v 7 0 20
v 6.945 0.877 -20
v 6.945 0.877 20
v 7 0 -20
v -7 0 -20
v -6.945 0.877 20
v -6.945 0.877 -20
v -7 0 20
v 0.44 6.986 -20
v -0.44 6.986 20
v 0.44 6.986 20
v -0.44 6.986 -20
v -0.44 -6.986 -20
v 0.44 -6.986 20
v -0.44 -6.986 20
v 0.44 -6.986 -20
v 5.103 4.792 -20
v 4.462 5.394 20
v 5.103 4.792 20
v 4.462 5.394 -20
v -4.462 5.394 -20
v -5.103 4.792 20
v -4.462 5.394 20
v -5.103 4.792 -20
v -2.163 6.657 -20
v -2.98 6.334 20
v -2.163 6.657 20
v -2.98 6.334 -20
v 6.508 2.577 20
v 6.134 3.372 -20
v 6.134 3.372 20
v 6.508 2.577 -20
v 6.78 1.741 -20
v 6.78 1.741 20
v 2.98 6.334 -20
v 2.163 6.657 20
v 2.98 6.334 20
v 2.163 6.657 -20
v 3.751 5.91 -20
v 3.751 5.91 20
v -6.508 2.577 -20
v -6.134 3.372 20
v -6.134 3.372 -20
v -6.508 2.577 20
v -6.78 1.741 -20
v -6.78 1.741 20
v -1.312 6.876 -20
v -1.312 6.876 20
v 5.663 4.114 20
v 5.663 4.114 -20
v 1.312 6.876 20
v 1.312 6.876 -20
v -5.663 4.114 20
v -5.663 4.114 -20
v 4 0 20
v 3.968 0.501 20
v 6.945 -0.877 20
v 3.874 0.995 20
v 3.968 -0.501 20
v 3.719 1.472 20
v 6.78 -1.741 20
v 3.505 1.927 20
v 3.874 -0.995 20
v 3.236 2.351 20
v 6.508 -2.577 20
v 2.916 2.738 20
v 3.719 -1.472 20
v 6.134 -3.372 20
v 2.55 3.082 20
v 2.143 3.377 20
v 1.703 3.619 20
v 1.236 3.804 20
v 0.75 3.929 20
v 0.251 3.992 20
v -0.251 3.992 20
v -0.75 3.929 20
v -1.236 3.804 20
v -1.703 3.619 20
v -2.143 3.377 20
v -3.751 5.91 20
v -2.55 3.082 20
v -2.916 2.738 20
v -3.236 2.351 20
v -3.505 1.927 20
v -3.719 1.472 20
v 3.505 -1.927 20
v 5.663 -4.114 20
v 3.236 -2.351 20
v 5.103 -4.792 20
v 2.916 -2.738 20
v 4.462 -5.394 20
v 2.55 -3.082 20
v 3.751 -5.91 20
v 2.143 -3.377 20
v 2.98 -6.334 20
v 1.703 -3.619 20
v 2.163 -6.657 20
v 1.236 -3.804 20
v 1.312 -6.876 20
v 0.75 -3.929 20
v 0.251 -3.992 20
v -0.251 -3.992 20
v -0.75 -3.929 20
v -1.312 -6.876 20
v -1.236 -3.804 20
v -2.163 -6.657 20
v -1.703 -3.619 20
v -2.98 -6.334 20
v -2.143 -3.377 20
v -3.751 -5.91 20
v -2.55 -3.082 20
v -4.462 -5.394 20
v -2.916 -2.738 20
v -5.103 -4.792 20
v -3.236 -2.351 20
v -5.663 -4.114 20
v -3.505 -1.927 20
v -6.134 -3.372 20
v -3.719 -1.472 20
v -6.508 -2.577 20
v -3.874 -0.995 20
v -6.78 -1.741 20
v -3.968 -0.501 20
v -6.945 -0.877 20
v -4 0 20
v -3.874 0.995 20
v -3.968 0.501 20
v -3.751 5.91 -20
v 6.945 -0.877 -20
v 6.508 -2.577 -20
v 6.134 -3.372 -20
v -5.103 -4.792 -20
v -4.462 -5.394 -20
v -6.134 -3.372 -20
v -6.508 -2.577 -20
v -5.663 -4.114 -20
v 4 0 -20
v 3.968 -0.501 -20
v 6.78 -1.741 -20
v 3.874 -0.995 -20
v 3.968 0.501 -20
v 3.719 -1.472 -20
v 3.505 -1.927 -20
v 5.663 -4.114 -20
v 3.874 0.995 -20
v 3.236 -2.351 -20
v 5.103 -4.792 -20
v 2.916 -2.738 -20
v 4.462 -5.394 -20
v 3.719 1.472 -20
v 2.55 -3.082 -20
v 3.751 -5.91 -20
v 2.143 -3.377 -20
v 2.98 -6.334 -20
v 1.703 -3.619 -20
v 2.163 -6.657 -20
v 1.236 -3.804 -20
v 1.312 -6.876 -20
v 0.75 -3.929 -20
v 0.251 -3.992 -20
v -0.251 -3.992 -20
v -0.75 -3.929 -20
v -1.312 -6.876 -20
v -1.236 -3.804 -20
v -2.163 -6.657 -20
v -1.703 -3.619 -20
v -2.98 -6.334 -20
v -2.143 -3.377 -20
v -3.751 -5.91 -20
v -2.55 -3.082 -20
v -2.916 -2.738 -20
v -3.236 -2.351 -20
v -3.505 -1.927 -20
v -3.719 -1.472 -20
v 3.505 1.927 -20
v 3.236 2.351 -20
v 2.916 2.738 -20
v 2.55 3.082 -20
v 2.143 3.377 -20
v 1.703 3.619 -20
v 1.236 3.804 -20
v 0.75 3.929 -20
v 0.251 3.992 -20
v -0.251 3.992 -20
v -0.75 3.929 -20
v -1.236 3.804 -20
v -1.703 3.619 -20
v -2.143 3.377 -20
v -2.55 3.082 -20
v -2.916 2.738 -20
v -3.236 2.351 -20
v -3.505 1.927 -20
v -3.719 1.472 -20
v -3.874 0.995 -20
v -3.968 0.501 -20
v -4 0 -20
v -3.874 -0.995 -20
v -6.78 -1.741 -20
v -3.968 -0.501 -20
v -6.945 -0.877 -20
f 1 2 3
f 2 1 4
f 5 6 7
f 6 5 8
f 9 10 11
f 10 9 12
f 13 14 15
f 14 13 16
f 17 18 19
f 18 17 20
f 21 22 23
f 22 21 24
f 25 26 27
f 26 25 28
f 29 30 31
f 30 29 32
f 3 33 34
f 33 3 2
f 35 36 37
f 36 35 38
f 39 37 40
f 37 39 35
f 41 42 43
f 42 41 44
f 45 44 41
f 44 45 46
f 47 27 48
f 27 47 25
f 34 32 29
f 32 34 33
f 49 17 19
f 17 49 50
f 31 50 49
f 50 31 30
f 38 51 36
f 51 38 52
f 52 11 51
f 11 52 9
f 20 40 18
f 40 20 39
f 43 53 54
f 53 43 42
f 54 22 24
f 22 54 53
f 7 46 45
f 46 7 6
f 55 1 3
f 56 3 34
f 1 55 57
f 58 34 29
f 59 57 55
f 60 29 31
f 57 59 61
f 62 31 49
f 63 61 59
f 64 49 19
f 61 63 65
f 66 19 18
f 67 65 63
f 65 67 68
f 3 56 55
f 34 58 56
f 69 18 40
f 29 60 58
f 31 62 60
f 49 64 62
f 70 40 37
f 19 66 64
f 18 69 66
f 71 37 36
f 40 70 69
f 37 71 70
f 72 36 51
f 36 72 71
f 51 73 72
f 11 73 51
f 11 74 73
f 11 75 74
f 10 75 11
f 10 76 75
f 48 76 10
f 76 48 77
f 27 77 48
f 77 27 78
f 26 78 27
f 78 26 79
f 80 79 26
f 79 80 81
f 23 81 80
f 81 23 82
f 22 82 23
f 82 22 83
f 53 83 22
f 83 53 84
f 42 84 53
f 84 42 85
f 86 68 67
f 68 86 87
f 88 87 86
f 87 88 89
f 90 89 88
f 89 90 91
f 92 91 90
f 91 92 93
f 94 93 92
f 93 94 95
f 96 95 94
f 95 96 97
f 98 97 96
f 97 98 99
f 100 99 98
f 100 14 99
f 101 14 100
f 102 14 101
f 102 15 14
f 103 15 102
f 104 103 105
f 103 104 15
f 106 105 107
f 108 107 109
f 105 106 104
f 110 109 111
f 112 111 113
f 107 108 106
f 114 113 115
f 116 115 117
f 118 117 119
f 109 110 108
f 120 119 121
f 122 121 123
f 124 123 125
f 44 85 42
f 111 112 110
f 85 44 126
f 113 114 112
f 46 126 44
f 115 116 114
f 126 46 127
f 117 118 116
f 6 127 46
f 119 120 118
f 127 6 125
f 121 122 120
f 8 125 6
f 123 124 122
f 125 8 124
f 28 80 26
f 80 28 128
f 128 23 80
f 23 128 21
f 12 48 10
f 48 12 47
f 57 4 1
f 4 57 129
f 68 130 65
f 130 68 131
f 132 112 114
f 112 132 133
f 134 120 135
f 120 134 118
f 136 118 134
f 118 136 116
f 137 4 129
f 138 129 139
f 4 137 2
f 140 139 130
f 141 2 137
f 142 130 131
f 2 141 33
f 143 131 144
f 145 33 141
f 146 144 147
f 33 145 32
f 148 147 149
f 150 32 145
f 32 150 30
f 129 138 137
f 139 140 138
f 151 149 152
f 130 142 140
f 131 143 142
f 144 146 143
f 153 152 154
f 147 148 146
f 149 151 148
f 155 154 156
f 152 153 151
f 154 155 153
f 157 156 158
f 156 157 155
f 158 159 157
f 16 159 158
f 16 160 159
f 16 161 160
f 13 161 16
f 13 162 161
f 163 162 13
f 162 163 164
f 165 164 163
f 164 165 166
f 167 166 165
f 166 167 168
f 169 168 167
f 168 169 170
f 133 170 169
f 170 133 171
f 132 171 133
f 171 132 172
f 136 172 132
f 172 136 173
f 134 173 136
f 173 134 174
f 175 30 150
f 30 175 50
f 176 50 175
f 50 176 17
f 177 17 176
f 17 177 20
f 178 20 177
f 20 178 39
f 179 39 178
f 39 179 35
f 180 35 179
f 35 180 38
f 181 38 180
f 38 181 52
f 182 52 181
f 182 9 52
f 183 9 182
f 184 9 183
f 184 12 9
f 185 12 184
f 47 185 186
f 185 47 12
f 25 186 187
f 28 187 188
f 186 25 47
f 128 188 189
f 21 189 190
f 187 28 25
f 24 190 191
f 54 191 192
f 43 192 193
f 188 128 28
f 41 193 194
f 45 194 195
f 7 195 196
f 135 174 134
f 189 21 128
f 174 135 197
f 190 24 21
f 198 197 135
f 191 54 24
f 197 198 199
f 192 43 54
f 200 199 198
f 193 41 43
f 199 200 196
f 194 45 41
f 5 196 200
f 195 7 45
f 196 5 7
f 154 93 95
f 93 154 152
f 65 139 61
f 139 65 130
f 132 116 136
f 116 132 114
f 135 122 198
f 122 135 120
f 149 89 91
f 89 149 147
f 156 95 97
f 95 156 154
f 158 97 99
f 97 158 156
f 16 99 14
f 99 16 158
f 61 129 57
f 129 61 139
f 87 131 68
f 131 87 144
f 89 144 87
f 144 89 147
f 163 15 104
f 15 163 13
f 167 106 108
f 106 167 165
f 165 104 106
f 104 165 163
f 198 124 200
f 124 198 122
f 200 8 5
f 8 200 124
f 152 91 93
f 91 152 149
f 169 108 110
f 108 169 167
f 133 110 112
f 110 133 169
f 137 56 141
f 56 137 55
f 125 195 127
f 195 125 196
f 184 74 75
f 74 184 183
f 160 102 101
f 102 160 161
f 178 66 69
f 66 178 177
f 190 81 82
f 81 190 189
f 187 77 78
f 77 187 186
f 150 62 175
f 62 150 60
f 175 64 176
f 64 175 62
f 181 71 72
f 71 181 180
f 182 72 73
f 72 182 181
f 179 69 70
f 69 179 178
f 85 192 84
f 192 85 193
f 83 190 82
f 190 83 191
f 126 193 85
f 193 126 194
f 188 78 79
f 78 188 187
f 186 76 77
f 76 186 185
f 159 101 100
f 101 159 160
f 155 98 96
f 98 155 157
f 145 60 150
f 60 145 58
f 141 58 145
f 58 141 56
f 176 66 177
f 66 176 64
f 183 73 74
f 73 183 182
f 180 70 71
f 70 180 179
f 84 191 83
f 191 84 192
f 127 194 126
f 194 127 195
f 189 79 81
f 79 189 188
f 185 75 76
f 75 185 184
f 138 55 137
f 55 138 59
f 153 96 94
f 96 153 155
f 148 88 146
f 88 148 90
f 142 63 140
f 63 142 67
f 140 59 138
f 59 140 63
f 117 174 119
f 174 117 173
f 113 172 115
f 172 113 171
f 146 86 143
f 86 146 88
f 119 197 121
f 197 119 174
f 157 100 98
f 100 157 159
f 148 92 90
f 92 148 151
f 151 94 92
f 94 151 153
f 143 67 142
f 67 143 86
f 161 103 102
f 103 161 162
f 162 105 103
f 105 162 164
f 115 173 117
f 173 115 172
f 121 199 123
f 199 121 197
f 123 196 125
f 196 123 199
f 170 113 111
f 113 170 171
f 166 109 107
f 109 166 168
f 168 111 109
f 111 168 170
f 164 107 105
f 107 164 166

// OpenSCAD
$fn = 50;


difference() {
	union() {
		translate(v = [0, 0, -20.0000000000]) {
			cylinder(h = 40, r = 7.0000000000);
		}
	}
	union() {
		translate(v = [0, 0, -100.0000000000]) {
			cylinder(h = 200, r = 4);
		}
	}
}
